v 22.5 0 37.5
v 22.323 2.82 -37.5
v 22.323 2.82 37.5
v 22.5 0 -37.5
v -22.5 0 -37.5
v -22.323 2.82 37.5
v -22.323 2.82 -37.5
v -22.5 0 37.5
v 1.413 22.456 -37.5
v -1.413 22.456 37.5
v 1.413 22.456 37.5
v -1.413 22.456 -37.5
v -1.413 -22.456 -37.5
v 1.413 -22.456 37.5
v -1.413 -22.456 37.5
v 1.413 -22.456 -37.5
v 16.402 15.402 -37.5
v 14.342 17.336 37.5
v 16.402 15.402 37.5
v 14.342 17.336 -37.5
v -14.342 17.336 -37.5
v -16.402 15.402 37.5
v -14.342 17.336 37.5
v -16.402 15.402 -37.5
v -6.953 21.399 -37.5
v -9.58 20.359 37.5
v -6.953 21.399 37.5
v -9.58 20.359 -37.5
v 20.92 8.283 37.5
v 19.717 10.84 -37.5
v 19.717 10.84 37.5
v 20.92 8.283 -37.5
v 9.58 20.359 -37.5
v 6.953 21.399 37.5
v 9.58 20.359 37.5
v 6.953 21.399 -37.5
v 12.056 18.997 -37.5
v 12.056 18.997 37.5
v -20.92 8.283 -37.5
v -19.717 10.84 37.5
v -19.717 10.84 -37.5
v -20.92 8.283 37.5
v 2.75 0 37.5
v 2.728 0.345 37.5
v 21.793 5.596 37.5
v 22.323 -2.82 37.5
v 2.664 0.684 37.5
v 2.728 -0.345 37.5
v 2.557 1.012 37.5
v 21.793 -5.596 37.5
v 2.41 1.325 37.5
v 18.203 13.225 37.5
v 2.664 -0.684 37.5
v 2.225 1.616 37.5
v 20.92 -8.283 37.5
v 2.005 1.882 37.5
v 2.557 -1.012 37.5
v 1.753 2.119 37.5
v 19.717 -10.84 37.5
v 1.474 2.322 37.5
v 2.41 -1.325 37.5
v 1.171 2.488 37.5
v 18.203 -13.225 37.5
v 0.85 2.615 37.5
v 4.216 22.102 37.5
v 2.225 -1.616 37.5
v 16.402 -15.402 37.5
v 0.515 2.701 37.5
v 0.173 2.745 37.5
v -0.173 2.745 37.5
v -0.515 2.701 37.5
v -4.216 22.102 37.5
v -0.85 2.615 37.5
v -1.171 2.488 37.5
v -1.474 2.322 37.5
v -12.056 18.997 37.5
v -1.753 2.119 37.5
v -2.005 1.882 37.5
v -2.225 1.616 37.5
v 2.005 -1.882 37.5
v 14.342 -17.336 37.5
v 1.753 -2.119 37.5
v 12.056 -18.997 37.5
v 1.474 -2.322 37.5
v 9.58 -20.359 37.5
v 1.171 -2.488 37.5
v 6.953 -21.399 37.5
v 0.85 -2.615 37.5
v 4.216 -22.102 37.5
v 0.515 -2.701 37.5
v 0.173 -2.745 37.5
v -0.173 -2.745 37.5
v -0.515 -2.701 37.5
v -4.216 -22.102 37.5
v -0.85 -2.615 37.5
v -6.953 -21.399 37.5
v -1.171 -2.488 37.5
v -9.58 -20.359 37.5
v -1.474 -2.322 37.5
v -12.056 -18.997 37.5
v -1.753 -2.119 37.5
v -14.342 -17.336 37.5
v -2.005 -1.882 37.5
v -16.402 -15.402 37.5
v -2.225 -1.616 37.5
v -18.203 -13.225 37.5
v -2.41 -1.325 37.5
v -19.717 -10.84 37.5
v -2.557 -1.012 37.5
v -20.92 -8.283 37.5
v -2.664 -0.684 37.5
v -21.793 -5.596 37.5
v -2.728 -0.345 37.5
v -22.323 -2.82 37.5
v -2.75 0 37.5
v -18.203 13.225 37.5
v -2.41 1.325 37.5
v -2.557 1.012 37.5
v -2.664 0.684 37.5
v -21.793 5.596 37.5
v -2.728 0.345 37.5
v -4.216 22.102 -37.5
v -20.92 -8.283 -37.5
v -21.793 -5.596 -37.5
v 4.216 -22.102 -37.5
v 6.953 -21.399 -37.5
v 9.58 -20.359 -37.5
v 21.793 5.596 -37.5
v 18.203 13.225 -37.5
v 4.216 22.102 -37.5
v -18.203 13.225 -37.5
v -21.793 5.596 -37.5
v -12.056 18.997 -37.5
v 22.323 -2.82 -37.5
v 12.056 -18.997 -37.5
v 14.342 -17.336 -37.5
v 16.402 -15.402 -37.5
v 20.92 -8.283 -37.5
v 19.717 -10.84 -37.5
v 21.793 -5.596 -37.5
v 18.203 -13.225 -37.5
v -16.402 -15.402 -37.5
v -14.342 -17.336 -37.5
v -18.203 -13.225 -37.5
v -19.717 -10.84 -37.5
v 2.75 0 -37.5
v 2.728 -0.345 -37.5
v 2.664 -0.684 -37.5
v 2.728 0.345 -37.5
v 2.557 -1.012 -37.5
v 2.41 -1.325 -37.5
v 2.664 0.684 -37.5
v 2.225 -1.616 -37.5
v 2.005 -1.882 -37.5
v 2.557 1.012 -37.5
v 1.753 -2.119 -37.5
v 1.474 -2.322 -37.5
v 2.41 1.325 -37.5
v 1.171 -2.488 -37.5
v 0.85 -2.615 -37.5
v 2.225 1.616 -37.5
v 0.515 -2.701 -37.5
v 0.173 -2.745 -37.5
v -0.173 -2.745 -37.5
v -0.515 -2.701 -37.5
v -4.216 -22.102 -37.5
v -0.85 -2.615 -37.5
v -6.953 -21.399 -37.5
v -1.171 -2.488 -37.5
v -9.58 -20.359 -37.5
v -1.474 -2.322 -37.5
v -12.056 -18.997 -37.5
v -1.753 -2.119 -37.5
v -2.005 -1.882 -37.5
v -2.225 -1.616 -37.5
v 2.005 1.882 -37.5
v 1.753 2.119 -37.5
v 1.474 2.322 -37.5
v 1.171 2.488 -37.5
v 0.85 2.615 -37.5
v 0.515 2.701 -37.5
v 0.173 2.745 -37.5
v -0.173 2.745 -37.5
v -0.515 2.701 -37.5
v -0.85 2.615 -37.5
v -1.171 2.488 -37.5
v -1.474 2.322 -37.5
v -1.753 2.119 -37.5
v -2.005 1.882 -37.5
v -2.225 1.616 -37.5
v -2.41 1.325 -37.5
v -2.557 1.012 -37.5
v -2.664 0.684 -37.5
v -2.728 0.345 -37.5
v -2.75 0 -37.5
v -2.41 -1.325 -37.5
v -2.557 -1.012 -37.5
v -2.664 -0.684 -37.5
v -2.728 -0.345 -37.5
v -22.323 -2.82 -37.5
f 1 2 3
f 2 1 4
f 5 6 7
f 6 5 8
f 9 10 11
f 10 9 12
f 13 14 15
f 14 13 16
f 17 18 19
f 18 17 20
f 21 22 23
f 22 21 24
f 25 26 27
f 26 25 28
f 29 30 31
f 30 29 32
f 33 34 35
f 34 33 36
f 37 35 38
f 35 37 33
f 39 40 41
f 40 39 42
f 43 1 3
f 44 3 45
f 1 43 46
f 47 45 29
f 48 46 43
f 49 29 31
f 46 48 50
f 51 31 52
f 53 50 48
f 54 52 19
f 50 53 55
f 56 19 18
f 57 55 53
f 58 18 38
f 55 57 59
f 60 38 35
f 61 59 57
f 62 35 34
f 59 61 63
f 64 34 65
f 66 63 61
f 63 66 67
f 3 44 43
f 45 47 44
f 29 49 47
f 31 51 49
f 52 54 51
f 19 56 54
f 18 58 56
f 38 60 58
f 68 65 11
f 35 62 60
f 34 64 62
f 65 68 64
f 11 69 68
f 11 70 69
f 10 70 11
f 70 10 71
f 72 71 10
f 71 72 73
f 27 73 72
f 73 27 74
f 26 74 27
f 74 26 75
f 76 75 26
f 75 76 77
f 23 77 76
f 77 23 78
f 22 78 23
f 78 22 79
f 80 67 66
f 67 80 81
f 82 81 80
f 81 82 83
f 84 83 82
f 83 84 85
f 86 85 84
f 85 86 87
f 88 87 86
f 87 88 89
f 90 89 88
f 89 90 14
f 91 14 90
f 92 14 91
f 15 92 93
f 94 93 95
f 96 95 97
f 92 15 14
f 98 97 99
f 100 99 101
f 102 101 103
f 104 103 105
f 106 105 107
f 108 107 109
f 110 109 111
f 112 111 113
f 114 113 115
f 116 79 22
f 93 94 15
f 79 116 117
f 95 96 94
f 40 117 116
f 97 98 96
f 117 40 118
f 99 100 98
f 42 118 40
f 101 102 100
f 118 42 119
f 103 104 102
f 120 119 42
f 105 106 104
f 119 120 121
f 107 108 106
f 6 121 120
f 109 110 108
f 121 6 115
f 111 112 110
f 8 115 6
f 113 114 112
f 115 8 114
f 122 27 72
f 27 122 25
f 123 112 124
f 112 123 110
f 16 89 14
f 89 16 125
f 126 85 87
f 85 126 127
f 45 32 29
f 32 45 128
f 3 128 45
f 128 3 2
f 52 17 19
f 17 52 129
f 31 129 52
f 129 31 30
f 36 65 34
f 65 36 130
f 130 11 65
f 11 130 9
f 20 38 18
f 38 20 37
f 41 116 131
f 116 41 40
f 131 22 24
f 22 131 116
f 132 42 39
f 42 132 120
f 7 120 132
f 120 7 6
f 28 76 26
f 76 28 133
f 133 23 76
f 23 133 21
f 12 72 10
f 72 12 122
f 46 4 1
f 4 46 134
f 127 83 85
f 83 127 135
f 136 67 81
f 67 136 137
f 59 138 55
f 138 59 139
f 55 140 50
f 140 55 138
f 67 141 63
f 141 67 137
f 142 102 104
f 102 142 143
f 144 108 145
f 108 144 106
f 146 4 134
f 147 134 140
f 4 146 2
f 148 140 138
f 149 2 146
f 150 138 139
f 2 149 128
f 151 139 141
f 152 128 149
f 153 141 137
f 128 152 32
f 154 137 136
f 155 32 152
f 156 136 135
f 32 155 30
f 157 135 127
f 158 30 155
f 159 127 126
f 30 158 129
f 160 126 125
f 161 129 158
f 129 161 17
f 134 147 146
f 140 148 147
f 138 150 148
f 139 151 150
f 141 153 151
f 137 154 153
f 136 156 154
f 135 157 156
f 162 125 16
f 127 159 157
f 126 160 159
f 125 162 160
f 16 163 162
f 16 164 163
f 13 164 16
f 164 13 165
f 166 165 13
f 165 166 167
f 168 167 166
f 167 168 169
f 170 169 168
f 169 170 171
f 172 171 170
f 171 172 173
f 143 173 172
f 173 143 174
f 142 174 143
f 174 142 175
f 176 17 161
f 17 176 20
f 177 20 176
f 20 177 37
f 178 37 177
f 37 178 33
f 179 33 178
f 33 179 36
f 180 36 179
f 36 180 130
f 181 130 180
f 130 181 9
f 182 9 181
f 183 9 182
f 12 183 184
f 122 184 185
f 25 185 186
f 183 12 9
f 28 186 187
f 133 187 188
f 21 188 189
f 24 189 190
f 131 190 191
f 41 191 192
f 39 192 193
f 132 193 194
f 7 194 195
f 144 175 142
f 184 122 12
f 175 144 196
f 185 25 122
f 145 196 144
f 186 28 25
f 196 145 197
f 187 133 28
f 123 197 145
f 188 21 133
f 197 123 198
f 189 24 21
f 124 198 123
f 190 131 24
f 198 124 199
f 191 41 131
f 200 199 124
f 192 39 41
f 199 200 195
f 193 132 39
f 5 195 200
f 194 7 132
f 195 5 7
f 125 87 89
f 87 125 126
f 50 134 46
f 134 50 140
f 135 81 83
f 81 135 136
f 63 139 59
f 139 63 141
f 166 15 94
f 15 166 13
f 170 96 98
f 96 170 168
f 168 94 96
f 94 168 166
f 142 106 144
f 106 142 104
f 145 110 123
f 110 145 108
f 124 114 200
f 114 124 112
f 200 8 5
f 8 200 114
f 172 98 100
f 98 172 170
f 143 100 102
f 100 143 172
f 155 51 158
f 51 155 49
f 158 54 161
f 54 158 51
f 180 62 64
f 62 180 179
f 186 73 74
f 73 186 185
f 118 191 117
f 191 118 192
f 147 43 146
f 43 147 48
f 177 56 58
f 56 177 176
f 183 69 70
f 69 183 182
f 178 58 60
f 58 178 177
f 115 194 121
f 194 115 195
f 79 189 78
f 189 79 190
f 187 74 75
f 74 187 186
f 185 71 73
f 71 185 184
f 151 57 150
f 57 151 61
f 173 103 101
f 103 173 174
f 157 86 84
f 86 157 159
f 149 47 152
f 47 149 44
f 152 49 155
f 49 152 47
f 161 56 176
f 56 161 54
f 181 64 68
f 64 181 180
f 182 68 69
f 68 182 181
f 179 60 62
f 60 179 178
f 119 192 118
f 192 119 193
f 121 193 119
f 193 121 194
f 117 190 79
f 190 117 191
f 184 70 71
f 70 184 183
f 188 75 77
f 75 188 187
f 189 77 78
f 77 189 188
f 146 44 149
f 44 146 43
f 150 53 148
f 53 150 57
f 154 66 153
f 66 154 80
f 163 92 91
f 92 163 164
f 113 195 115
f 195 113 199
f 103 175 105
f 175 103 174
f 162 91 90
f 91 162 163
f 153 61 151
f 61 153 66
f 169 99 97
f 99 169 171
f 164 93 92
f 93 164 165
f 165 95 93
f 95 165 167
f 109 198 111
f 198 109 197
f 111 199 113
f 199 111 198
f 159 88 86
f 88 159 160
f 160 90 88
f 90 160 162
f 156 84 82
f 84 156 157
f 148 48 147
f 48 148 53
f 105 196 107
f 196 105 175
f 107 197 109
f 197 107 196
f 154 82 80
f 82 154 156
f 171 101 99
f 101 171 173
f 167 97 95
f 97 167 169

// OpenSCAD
$fn = 50;


difference() {
	union() {
		translate(v = [0, 0, -37.5000000000]) {
			cylinder(h = 75, r = 22.5000000000);
		}
	}
	union() {
		translate(v = [0, 0, -100.0000000000]) {
			cylinder(h = 200, r = 2.7500000000);
		}
	}
}
